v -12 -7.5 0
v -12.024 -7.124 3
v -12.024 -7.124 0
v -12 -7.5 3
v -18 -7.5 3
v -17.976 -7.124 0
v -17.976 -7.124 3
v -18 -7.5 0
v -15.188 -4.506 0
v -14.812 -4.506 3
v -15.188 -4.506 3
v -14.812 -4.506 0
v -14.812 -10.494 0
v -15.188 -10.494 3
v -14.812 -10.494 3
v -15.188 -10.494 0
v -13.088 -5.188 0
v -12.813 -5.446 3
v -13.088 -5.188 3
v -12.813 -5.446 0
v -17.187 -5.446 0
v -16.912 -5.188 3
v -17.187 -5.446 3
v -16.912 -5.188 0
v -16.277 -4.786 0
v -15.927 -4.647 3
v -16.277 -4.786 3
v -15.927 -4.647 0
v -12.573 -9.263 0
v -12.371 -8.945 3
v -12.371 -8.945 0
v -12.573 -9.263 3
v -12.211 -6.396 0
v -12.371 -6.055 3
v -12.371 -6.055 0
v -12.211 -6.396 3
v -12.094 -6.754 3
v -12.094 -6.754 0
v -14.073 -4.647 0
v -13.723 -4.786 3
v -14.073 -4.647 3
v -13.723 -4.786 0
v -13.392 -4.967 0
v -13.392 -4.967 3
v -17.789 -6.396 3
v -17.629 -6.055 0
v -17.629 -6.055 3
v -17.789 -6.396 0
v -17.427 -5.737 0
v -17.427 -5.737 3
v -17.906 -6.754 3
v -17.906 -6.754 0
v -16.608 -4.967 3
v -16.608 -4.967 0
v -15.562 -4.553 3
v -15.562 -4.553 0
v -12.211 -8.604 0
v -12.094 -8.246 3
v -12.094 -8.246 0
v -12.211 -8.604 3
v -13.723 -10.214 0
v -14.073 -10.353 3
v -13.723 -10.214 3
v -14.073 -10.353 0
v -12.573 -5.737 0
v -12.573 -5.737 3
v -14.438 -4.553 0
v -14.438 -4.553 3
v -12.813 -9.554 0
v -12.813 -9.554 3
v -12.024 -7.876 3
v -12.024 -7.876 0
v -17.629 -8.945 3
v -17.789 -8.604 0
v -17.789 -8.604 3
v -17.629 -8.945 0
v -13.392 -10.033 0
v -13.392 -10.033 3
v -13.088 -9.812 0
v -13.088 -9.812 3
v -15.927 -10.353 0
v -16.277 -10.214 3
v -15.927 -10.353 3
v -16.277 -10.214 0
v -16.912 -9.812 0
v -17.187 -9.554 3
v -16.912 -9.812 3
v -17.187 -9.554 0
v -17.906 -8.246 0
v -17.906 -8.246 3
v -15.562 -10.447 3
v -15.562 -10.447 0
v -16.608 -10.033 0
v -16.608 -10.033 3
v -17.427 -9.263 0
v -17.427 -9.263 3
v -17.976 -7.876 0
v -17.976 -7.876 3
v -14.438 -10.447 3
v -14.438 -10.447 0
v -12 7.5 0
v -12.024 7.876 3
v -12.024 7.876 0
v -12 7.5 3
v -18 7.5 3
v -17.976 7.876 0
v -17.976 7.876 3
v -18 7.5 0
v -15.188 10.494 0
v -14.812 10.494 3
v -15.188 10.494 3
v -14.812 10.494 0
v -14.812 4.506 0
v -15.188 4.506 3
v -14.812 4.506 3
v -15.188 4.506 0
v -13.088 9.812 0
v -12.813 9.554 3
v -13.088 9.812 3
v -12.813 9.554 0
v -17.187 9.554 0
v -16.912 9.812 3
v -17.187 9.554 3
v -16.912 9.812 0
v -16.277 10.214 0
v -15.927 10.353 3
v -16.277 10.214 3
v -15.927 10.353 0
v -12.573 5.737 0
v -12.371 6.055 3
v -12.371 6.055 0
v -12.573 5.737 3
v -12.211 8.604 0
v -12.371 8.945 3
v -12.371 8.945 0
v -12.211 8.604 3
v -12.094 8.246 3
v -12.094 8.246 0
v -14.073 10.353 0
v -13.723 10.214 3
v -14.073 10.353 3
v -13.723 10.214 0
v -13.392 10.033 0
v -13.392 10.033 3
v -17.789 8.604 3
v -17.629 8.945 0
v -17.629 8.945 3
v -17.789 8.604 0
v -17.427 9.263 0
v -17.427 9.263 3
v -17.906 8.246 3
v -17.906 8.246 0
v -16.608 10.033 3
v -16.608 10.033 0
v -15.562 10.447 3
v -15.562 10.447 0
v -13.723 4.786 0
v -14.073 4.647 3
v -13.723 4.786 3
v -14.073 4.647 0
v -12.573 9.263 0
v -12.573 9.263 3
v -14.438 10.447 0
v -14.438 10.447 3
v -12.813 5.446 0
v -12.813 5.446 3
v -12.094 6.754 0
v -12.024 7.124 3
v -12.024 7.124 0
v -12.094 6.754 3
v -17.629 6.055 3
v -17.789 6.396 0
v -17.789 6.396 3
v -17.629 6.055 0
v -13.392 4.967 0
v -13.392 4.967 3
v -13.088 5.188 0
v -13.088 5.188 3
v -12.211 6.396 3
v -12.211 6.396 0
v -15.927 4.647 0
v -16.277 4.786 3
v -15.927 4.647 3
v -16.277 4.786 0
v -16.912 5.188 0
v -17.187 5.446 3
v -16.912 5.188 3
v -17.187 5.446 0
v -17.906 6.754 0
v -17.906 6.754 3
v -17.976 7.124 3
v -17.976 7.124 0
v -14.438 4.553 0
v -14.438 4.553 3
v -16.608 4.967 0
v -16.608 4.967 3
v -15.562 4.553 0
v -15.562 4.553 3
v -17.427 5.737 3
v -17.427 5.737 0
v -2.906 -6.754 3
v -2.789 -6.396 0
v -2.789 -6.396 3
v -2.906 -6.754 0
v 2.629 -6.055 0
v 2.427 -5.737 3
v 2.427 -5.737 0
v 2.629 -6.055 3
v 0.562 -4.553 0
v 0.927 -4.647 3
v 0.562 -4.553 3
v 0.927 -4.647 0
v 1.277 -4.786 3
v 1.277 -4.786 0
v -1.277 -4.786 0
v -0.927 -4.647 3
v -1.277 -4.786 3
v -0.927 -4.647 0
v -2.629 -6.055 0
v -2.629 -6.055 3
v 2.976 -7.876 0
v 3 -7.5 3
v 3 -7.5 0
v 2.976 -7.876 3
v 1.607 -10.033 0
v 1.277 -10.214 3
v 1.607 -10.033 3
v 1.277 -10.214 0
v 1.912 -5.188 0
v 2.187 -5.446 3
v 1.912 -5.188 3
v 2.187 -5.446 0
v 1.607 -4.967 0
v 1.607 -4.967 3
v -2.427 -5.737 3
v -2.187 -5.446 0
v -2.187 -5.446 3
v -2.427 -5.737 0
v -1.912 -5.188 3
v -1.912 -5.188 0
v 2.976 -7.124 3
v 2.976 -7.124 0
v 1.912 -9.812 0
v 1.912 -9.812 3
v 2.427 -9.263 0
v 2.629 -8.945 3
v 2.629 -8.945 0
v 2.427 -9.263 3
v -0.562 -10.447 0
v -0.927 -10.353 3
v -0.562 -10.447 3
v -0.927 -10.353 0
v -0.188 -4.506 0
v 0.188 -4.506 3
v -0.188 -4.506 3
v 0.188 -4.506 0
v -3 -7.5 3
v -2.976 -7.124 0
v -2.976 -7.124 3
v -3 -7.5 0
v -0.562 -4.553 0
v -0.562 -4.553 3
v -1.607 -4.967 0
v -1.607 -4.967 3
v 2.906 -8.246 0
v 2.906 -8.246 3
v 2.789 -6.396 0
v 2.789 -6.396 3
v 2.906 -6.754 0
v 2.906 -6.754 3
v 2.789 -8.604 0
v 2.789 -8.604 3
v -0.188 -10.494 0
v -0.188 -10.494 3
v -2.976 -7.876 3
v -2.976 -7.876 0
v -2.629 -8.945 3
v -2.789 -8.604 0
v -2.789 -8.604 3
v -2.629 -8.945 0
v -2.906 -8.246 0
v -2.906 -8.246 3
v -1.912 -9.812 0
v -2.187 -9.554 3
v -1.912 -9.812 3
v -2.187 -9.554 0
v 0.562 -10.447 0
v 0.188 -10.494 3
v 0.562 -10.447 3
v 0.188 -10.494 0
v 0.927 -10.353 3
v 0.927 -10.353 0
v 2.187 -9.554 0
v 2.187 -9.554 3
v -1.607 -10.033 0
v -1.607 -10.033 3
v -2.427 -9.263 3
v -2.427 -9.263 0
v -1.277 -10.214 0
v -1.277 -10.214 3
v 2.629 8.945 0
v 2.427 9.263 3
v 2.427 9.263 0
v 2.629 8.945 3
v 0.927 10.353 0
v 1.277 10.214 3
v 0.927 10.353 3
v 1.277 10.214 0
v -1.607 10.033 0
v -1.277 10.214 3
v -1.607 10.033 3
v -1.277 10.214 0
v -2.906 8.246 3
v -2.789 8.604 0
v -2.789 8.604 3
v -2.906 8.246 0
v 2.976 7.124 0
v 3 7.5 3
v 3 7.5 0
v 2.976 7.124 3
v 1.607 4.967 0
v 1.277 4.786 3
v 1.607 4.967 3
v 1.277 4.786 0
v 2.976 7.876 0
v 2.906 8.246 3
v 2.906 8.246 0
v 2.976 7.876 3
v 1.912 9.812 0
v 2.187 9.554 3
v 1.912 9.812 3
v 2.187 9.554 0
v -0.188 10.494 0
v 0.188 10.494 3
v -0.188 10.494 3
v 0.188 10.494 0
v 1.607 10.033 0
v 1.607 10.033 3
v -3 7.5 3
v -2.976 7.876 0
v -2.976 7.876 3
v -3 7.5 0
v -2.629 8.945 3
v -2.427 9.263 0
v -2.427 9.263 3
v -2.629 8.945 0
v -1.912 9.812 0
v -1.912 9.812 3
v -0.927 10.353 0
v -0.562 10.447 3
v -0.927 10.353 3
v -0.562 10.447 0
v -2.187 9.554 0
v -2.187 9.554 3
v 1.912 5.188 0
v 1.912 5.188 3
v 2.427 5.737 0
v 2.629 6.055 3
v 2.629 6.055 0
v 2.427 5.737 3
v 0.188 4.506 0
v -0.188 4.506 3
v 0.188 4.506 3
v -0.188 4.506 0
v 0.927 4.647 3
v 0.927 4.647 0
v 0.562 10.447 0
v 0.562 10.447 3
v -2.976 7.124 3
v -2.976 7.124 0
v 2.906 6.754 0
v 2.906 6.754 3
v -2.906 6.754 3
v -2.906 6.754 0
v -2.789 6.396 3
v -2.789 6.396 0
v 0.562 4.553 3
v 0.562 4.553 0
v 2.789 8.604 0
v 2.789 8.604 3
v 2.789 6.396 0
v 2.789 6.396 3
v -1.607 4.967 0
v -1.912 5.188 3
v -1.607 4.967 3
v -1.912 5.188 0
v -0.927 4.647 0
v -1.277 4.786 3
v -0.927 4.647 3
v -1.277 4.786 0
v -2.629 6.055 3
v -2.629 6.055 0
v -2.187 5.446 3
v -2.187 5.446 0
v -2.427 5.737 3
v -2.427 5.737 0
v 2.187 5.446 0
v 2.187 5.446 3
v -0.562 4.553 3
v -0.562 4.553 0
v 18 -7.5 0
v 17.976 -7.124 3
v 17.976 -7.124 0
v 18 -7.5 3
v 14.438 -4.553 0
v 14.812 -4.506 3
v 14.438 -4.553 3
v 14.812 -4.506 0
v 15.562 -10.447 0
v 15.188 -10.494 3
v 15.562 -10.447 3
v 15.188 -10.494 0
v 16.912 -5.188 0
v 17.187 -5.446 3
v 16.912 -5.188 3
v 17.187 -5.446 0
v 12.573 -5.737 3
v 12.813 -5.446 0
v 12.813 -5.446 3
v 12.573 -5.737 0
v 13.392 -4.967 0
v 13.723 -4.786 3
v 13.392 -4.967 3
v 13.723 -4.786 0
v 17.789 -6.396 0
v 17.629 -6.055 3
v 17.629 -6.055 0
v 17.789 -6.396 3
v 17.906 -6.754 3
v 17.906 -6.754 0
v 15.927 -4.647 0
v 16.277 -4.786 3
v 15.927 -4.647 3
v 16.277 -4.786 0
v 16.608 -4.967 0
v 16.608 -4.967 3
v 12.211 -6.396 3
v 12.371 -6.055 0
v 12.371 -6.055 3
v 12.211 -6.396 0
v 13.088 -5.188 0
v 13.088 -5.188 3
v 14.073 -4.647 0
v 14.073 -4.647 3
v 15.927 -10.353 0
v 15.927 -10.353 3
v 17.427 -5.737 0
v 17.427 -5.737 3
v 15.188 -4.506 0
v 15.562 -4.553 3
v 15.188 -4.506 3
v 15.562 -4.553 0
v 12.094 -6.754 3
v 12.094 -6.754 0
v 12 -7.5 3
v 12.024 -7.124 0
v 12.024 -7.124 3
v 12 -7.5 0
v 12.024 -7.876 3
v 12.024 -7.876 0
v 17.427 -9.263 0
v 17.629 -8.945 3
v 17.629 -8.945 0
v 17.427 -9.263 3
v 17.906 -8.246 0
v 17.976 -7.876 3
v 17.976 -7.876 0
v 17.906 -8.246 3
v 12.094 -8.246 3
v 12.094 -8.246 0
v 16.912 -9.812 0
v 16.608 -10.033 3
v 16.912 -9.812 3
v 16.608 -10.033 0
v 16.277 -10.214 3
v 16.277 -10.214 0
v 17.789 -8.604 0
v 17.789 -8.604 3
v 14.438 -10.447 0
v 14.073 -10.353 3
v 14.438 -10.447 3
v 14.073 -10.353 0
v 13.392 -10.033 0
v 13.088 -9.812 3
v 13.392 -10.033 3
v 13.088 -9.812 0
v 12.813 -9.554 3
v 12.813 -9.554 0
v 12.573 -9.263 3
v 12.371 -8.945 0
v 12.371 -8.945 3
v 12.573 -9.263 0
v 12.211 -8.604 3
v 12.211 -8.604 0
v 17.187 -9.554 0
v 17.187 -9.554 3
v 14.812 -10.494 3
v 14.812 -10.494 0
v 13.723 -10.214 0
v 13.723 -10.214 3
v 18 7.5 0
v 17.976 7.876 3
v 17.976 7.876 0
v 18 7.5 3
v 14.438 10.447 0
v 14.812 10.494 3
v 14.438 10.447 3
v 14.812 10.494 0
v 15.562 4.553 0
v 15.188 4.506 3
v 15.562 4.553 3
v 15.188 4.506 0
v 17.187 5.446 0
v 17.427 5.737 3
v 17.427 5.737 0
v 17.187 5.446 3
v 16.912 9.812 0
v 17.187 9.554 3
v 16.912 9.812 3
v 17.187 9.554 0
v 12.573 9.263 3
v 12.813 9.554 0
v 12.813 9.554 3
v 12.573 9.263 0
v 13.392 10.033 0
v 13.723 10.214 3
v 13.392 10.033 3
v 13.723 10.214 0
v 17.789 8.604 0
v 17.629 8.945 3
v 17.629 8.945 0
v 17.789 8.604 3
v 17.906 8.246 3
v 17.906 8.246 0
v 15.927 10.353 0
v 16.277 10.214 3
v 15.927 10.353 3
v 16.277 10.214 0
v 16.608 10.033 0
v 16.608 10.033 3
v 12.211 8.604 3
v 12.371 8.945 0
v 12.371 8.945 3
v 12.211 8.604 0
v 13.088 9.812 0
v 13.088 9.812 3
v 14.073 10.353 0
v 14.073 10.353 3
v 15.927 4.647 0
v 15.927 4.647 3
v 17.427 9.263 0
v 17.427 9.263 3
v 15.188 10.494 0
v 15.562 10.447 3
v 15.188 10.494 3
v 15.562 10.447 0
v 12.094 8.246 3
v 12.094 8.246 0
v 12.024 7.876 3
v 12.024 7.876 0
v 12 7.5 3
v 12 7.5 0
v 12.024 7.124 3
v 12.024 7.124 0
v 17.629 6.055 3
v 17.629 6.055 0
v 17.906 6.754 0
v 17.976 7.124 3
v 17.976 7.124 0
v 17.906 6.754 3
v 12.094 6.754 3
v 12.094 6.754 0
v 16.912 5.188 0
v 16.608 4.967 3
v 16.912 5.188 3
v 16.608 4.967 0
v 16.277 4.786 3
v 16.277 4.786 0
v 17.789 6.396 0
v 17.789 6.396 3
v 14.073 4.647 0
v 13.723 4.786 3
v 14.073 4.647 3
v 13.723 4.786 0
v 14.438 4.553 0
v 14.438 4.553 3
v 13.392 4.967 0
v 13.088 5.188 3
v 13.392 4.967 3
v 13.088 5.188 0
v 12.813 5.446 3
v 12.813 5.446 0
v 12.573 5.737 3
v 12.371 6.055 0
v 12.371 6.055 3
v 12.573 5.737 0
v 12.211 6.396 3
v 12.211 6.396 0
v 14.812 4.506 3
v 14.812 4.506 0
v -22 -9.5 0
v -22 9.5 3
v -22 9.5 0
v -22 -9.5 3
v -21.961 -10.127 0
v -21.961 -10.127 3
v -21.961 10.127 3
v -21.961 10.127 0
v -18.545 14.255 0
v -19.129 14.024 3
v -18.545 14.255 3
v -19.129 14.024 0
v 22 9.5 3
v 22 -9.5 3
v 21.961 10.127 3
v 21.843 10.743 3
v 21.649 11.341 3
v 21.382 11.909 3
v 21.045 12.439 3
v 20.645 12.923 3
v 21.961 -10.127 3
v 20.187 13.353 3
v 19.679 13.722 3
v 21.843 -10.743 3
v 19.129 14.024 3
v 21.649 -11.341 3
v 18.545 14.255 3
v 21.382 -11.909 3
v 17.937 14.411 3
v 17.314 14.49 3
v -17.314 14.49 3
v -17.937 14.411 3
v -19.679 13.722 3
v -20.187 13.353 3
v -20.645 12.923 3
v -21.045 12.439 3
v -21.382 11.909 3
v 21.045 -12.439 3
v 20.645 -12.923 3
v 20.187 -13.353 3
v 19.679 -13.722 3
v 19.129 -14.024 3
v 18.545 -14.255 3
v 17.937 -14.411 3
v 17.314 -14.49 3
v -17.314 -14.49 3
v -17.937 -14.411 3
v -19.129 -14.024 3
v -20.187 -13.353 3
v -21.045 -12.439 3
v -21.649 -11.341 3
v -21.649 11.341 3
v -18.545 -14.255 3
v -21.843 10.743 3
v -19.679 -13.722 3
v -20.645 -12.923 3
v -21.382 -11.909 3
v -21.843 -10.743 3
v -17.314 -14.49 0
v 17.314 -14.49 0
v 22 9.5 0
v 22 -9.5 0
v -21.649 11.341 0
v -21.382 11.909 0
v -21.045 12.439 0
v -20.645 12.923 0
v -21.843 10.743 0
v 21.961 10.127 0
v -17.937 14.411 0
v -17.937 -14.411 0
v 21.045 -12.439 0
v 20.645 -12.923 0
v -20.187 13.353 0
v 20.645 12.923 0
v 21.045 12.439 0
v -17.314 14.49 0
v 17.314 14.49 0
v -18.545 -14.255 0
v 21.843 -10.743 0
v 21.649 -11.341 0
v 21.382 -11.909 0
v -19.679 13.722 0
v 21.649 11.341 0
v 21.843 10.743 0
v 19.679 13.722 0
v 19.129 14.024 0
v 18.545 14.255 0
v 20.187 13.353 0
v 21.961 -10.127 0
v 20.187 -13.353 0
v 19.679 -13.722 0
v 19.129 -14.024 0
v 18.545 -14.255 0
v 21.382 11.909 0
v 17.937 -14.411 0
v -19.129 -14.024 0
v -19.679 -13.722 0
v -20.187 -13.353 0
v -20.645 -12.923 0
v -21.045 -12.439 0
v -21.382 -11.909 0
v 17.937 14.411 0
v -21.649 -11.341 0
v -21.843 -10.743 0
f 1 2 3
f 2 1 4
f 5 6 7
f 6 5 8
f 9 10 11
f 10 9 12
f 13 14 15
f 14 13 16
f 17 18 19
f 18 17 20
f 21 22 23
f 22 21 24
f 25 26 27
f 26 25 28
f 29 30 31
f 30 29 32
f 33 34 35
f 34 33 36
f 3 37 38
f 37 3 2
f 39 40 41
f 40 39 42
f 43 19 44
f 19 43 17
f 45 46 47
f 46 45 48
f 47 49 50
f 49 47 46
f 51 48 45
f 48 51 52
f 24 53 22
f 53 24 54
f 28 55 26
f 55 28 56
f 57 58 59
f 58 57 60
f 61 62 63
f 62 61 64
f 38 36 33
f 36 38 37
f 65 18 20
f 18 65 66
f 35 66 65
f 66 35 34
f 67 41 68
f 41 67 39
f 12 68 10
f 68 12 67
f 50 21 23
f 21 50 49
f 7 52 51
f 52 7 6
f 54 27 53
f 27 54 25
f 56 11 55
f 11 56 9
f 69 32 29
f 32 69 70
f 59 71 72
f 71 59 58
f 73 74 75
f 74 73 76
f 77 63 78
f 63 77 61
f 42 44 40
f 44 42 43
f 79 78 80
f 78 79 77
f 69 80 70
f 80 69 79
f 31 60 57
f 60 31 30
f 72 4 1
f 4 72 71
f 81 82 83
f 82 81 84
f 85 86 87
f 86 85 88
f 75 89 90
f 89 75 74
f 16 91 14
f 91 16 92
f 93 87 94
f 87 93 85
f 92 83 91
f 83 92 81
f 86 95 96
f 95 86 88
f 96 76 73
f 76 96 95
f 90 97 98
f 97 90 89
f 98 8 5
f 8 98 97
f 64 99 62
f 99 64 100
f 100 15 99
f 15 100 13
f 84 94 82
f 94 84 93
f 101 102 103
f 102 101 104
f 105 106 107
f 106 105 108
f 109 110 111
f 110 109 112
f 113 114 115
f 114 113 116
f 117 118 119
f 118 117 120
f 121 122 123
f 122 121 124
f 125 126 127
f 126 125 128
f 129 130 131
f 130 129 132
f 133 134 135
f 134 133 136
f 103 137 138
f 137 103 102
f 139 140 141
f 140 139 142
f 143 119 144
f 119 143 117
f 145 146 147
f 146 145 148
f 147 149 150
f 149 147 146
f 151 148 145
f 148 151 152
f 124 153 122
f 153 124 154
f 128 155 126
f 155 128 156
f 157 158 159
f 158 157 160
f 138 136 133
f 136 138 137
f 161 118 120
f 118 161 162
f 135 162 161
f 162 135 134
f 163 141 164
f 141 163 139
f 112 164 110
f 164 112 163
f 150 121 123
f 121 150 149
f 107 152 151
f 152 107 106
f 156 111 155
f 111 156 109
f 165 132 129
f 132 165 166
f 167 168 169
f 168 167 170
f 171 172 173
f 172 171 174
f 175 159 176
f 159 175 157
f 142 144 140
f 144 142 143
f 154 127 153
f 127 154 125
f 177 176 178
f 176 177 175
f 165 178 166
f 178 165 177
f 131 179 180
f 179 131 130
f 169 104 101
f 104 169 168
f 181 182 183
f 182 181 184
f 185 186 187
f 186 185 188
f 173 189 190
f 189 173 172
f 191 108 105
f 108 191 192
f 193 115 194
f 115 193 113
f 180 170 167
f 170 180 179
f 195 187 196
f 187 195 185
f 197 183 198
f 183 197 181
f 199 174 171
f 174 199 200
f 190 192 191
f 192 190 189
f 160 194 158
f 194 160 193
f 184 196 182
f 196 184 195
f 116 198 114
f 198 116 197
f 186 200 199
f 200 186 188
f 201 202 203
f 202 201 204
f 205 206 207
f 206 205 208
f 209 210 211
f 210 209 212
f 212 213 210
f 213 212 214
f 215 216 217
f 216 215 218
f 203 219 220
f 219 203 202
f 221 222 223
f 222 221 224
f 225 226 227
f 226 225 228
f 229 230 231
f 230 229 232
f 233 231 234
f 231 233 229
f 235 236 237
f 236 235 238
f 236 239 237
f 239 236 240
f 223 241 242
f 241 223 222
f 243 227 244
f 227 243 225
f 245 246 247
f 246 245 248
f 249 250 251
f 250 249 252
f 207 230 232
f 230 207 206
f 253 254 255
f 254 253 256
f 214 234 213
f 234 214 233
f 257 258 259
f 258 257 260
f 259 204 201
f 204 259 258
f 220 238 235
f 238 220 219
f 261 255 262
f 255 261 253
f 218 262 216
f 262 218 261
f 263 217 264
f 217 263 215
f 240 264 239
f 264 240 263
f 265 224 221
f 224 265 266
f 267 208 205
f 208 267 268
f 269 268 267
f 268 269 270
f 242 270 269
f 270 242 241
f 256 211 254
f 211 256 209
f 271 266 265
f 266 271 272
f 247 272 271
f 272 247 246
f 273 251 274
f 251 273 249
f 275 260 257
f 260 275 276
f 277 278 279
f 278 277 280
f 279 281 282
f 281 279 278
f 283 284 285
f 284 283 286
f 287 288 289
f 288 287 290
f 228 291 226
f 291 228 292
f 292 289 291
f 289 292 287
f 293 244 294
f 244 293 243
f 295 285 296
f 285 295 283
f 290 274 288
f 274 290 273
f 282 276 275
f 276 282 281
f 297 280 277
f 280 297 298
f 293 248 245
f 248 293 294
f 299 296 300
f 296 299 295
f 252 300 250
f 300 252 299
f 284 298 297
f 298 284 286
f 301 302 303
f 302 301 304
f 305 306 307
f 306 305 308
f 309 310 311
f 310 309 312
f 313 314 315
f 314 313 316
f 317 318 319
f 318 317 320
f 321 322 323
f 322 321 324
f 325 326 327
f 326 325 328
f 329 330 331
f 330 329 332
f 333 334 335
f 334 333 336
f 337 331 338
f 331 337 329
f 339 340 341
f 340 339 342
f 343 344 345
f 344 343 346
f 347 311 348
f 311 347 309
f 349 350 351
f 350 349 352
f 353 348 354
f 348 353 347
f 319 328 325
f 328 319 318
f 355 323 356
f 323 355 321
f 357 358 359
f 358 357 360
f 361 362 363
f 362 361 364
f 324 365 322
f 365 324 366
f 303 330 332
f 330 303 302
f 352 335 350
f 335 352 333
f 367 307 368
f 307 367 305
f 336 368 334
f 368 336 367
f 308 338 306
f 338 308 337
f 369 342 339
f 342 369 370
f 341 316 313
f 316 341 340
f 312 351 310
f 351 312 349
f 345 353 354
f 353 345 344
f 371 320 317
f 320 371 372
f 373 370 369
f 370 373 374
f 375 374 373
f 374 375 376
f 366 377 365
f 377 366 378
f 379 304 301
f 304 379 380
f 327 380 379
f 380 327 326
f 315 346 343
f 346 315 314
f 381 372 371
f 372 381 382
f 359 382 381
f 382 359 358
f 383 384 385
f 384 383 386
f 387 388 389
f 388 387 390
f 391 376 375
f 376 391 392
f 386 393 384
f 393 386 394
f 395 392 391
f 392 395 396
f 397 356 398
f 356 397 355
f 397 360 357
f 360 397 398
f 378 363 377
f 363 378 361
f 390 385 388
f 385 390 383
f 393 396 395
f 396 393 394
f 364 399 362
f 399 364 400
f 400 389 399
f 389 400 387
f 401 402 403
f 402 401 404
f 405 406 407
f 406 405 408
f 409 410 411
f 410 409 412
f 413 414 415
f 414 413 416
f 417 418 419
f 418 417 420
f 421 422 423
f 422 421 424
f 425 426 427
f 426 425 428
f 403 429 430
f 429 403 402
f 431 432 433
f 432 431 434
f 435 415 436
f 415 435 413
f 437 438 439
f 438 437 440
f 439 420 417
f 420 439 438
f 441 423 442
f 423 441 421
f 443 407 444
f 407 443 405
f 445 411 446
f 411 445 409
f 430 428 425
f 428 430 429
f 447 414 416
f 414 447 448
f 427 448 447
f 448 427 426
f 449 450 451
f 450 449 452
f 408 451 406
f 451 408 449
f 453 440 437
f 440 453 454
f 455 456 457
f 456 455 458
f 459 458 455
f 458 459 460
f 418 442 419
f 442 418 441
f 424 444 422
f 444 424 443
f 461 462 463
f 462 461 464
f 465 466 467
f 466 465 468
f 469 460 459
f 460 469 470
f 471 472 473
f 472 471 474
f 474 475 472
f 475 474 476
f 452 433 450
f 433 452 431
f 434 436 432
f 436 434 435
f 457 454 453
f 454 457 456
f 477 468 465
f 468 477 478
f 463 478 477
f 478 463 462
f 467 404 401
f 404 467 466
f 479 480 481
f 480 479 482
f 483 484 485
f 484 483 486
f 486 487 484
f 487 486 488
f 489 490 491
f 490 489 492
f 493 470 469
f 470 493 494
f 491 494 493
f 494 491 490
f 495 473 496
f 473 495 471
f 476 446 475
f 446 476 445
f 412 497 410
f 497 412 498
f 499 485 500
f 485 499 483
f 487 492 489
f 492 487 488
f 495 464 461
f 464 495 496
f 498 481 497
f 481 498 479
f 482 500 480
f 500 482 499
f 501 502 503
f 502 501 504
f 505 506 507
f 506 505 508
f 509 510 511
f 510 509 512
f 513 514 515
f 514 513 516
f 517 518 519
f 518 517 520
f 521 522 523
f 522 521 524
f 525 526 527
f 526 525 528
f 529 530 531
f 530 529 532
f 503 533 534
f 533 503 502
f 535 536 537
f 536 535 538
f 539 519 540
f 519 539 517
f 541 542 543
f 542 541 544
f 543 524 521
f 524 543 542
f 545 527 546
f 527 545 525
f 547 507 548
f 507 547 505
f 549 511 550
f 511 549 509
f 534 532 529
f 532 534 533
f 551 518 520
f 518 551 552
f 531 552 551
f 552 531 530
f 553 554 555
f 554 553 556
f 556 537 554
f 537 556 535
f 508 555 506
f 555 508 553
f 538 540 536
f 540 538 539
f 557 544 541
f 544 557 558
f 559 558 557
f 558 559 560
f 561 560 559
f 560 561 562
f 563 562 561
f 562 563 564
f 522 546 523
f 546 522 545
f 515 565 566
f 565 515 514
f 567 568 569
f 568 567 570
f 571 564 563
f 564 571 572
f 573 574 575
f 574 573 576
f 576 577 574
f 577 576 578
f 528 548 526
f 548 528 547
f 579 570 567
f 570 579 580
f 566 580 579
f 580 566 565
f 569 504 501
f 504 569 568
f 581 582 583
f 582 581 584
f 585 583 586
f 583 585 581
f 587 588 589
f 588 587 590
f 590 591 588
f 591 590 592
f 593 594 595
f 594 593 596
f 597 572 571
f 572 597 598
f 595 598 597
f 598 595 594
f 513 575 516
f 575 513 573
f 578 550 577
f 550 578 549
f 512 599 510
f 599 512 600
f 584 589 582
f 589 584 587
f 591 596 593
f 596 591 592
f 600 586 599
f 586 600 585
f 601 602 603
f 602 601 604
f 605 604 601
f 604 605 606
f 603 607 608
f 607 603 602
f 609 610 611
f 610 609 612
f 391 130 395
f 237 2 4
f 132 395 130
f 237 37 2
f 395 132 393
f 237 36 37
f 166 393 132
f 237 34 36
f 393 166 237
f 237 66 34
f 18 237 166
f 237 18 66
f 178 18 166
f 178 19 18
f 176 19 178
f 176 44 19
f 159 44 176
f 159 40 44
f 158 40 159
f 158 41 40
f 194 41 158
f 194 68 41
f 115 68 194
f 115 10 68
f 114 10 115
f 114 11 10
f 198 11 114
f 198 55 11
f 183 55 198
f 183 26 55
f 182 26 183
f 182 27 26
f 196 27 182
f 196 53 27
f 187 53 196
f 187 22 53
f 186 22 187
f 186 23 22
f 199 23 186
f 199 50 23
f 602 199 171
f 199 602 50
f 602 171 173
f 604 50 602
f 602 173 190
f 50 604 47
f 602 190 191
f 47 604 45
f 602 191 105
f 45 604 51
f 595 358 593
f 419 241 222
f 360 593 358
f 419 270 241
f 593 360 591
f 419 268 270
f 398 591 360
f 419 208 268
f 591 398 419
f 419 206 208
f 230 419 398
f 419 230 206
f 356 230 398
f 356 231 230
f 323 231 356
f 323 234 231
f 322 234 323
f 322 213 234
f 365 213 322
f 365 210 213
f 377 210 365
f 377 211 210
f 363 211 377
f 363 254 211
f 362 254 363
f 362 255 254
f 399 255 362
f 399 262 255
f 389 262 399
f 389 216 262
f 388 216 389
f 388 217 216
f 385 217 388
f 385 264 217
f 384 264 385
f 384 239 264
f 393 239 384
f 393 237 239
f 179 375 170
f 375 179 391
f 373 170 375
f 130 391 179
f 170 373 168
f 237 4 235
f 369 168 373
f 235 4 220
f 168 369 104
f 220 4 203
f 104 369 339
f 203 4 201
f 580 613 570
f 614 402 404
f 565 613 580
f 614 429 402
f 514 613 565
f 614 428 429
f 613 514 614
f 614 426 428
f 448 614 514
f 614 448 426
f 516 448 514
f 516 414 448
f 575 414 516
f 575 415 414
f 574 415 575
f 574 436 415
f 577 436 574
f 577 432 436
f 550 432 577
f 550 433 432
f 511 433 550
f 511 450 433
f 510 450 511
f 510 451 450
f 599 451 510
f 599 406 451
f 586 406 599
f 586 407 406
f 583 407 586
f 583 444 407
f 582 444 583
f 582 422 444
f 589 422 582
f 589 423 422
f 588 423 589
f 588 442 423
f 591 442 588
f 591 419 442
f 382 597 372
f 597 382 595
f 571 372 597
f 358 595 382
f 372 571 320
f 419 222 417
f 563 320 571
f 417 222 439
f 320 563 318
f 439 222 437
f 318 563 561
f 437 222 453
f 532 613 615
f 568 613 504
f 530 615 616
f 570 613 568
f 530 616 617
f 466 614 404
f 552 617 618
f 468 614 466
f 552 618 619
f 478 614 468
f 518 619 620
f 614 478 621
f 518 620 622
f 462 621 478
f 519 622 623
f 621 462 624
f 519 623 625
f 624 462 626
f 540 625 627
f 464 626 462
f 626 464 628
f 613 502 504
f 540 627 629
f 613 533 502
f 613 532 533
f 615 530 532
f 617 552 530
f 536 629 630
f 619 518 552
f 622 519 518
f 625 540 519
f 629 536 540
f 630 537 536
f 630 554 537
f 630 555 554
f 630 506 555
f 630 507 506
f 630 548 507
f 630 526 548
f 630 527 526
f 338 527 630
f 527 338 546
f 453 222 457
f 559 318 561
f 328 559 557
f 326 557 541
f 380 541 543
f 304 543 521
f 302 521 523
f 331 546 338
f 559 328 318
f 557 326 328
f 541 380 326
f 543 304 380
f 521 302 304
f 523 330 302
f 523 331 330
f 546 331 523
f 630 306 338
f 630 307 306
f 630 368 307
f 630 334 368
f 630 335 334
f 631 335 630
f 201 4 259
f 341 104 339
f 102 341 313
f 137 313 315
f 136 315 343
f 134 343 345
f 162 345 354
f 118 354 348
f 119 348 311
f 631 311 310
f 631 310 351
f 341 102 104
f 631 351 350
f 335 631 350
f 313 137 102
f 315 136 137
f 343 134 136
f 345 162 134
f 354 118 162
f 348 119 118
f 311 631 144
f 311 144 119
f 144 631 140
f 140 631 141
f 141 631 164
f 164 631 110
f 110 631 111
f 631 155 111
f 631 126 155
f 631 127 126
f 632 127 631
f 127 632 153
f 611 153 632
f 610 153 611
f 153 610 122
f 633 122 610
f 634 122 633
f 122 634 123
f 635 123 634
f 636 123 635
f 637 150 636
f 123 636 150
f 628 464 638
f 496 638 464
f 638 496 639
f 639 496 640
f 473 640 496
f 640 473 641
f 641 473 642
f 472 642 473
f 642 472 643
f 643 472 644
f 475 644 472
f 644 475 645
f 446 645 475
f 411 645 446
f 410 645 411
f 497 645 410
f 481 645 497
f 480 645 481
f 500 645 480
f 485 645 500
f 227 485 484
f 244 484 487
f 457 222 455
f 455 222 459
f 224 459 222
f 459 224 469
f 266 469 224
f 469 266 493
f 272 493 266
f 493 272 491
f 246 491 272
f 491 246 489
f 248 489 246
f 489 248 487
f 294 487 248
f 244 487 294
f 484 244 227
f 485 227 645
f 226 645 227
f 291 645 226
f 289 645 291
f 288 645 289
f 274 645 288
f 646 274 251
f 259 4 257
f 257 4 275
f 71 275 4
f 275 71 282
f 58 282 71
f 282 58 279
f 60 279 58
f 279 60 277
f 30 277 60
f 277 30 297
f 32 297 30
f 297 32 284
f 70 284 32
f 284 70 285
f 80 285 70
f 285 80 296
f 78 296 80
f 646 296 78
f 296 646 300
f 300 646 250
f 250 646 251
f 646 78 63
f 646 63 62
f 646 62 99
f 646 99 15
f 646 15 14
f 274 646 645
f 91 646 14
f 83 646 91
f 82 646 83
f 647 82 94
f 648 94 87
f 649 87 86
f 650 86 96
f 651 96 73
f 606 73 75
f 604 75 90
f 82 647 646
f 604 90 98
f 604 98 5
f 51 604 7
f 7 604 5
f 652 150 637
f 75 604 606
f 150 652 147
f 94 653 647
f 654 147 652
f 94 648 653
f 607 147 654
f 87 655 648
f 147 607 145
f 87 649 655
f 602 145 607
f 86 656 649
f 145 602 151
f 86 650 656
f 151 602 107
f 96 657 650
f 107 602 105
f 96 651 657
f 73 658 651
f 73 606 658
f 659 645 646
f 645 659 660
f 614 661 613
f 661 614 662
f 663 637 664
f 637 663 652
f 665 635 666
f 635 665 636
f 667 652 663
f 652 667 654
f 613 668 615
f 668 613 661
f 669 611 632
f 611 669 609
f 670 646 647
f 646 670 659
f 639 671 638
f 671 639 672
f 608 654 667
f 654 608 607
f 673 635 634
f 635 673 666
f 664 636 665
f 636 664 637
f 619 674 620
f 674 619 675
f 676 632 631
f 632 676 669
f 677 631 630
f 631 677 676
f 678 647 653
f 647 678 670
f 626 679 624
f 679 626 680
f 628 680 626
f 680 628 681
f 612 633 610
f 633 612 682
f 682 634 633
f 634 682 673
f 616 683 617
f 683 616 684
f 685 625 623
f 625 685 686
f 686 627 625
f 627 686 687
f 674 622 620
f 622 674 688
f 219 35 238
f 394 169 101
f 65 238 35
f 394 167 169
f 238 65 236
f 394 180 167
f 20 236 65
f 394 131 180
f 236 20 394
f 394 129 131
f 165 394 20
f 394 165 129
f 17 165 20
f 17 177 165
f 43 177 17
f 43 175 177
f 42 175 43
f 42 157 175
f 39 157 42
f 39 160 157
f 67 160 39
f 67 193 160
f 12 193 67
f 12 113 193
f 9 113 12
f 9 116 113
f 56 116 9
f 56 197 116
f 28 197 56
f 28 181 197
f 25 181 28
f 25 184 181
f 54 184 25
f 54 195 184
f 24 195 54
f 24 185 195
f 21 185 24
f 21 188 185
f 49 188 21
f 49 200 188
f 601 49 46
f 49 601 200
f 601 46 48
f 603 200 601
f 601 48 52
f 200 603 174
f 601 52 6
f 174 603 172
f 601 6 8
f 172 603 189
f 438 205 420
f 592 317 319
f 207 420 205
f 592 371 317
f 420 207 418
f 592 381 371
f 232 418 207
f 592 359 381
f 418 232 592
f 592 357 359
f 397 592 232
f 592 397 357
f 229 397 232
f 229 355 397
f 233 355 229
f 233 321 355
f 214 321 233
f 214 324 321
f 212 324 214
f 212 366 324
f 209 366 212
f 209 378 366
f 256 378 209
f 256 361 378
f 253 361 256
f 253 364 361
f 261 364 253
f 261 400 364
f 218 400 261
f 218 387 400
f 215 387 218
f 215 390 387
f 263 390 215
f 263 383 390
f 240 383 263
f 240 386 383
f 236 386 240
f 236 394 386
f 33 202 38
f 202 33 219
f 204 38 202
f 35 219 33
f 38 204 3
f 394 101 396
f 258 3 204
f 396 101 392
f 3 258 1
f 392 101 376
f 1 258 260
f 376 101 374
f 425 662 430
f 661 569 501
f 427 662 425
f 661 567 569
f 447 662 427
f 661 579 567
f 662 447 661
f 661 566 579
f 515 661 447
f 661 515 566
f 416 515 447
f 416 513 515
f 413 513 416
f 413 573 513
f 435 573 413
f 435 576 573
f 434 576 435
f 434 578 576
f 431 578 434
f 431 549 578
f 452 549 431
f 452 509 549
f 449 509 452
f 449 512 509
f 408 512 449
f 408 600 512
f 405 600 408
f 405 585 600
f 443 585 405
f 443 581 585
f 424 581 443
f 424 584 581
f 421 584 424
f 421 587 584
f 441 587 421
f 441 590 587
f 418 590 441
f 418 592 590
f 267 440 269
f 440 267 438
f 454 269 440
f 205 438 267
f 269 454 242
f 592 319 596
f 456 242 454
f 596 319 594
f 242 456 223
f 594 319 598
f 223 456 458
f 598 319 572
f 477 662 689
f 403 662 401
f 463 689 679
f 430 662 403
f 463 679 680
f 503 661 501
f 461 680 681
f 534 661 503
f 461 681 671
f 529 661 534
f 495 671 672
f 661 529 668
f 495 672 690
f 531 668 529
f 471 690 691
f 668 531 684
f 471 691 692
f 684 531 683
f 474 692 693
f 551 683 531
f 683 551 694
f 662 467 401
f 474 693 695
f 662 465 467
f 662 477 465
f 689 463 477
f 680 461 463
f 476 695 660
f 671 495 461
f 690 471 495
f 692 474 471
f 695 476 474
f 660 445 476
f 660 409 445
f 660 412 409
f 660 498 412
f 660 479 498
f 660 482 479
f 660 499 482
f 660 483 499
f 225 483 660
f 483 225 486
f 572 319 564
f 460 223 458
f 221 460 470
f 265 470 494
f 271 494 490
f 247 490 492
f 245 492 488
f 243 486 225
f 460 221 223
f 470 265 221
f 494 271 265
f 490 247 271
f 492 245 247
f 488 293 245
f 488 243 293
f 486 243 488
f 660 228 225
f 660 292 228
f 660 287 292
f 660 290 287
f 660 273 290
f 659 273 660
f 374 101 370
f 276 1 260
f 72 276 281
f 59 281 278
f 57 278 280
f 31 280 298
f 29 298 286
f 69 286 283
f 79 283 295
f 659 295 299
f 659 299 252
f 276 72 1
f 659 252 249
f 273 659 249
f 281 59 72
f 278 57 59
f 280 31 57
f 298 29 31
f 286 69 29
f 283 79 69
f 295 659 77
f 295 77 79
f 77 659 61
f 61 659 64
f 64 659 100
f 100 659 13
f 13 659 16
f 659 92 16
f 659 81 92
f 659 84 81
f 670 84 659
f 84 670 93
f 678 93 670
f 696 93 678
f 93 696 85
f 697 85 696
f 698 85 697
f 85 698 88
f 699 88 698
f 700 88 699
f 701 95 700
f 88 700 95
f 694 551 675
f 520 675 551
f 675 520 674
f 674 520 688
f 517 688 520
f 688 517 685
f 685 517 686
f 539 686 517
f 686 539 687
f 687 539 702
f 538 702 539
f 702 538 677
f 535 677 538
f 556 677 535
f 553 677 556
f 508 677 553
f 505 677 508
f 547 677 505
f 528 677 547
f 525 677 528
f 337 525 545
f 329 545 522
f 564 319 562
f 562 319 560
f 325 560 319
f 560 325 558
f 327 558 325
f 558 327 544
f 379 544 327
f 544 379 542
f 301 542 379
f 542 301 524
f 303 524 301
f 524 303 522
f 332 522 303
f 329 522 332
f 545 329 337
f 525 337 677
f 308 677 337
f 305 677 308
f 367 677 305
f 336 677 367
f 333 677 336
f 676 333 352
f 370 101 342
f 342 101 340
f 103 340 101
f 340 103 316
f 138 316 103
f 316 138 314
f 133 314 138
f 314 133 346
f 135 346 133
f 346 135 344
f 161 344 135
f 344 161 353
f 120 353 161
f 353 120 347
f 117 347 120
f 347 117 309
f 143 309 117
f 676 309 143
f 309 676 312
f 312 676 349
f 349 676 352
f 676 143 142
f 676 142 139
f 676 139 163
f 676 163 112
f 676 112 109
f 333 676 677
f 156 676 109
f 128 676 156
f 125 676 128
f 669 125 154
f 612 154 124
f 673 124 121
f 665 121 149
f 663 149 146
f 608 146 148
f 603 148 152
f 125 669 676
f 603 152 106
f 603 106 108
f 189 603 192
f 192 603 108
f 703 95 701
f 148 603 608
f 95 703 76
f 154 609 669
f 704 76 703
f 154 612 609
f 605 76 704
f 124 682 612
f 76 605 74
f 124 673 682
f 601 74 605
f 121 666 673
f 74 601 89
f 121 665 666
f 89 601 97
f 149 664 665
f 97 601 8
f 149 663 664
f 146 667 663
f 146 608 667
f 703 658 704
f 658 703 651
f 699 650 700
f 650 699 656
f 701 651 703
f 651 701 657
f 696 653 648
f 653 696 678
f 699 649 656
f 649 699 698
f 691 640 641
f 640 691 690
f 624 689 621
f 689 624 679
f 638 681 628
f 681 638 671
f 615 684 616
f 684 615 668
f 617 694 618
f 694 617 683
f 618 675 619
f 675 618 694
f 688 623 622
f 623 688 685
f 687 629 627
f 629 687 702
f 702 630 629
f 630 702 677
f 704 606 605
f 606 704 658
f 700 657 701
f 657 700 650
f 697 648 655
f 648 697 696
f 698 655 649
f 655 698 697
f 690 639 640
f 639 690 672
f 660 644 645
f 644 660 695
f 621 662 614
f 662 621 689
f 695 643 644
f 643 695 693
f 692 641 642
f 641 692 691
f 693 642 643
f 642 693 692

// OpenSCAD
// Generated by SolidPython 1.1.3 on 2023-03-12 21:51:50
$fn = 50;


difference() {
	union() {
		translate(v = [0, 0, 0]) {
			rotate(a = [0, 0, 0]) {
				hull() {
					translate(v = [-17.0000000000, 9.5000000000, 0]) {
						rotate(a = [0, 0, 0]) {
							translate(v = [0, 0, 0]) {
								rotate(a = [0, 0, 0]) {
									cylinder(h = 3, r = 5);
								}
							}
						}
					}
					translate(v = [17.0000000000, 9.5000000000, 0]) {
						rotate(a = [0, 0, 0]) {
							translate(v = [0, 0, 0]) {
								rotate(a = [0, 0, 0]) {
									cylinder(h = 3, r = 5);
								}
							}
						}
					}
					translate(v = [-17.0000000000, -9.5000000000, 0]) {
						rotate(a = [0, 0, 0]) {
							translate(v = [0, 0, 0]) {
								rotate(a = [0, 0, 0]) {
									cylinder(h = 3, r = 5);
								}
							}
						}
					}
					translate(v = [17.0000000000, -9.5000000000, 0]) {
						rotate(a = [0, 0, 0]) {
							translate(v = [0, 0, 0]) {
								rotate(a = [0, 0, 0]) {
									cylinder(h = 3, r = 5);
								}
							}
						}
					}
				}
			}
		}
	}
	union() {
		translate(v = [-15.0000000000, -7.5000000000, 0]) {
			rotate(a = [0, 0, 0]) {
				translate(v = [0, 0, -50]) {
					rotate(a = [0, 0, 0]) {
						cylinder(h = 100, r = 3.0000000000);
					}
				}
			}
		}
		translate(v = [-15.0000000000, 7.5000000000, 0]) {
			rotate(a = [0, 0, 0]) {
				translate(v = [0, 0, -50]) {
					rotate(a = [0, 0, 0]) {
						cylinder(h = 100, r = 3.0000000000);
					}
				}
			}
		}
		translate(v = [0.0000000000, -7.5000000000, 0]) {
			rotate(a = [0, 0, 0]) {
				translate(v = [0, 0, -50]) {
					rotate(a = [0, 0, 0]) {
						cylinder(h = 100, r = 3.0000000000);
					}
				}
			}
		}
		translate(v = [0.0000000000, 7.5000000000, 0]) {
			rotate(a = [0, 0, 0]) {
				translate(v = [0, 0, -50]) {
					rotate(a = [0, 0, 0]) {
						cylinder(h = 100, r = 3.0000000000);
					}
				}
			}
		}
		translate(v = [15.0000000000, -7.5000000000, 0]) {
			rotate(a = [0, 0, 0]) {
				translate(v = [0, 0, -50]) {
					rotate(a = [0, 0, 0]) {
						cylinder(h = 100, r = 3.0000000000);
					}
				}
			}
		}
		translate(v = [15.0000000000, 7.5000000000, 0]) {
			rotate(a = [0, 0, 0]) {
				translate(v = [0, 0, -50]) {
					rotate(a = [0, 0, 0]) {
						cylinder(h = 100, r = 3.0000000000);
					}
				}
			}
		}
	}
}
/***********************************************
*********      SolidPython code:      **********
************************************************
 
from solid import *
import os
import subprocess

import oomB

import opsc_library_gen

mode = "laser"
#mode = "3d_print"

defined_objects = {}

radius_dict = {}
countersunk_dict = {}


def set_mode(m):
    global mode
    mode = m
    radius_dict['M6'] = 6.5/2
    radius_dict['M3'] = 3.3/2
    if mode == "laser":
        radius_dict['M6'] = 6/2
        radius_dict['M3'] = 3/2

    countersunk_dict['M3'] = {}
    countersunk_dict['M3']['little_rad'] = radius_dict['M3']
    countersunk_dict['M3']['big_rad'] = (5.5+0.6)/2
    if mode == "laser":
        countersunk_dict['M3']['big_rad'] = (4.75+0.6)/2
        countersunk_dict['M3']['little_rad'] = (4.75+0.6)/2

    countersunk_dict['M3']['height'] = 1.7


def opsc_make_object(filename, objects, save_type="none",resolution=50, layers = 1, tilediff = 200, mode="laser", overwrite=True):
    if overwrite or not os.path.exists(filename):
        set_mode(mode)
        save_type = save_type.lower()
        os.makedirs(os.path.dirname(filename), exist_ok=True)
        final_object = opsc_get_object(objects, mode = mode)
        # Save the final object to the specified filename    
        scad_render_to_file(final_object, filename, file_header='$fn = %s;' % resolution, include_orig_code=True)
        if mode == "laser":
            filename_laser = filename.replace(".scad","-flat.scad")
            scad_render_to_file(getLaser(final_object, layers=layers, tilediff=tilediff), filename_laser, file_header='$fn = %s;' % resolution, include_orig_code=True)
            if save_type == "all":
                saveToAll(filename_laser)
            elif save_type == "dxf":
                saveToDxf(filename_laser)
        if save_type == "all":
            saveToAll(filename)
        elif save_type == "dxf":
            saveToDxf(filename)


def opsc_get_object(objects, mode = "laser"):
    # Create the solidpython objects only include the positive objects and if they don't have inclusion or their inclusion is either all or mode
    # Initialize an empty list to store the results
    positive_objects = []

    # Iterate over the "objects" list
    for obj in objects:
        # Check if the current object has a "type" key with a value of "positive"
        if obj['type'] == 'positive':
            # Check if the current object has an "inclusion" key and its value matches "mode",
            # or if the current object does not have an "inclusion" key at all
            if not 'inclusion' in obj or obj['inclusion'] == "all" or obj['inclusion'] == mode:
                # Call the "get_opsc_item" function with the current object as an argument
                opsc_item = get_opsc_item(obj)
                # Add the result to the "positive_objects" list
                positive_objects.append(opsc_item)
# Initialize an empty list to store the results
    negative_objects = []

    # Iterate over the "objects" list
    for obj in objects:
        # Check if the current object has a "type" key with a value of "negative"
        if obj['type'] == 'negative':
            # Check if the current object has an "inclusion" key and its value matches "mode",
            # or if the current object does not have an "inclusion" key at all
            if not 'inclusion' in obj or obj['inclusion'] == "all" or obj['inclusion'] == mode:
                # Call the "get_opsc_item" function with the current object as an argument
                opsc_item = get_opsc_item(obj)
                # Add the result to the "negative_objects" list
                negative_objects.append(opsc_item)
    
    #positive_objects = [get_opsc_item(obj) for obj in objects if obj['type'] == 'positive']
    #negative_objects = [get_opsc_item(obj) for obj in objects if obj['type'] == 'negative']
    # Union the positive objects
    positive_object = union()(*positive_objects)
    # Union the negative objects
    negative_object = union()(*negative_objects)
    # Create the final object by subtracting the negative objects from the positive objects
    return difference()(positive_object, negative_object)

def get_opsc_item(params):
    # A dictionary to map radius string values to numerical values
    #radius_dict = {'small': 5, 'medium': 10, 'large': 15}
    # An array of function names for basic shapes
    basic_shapes = ['cube', 'sphere', 'cylinder']
    
    # An array of function names for other shapes
    other_shapes = ['hole', 'slot', 'rounded_rectangle', 'countersunk']
    


    # Convert radius to r if present, and remove radius from the params dictionary
    if 'radius' in params:
        if isinstance(params['radius'], str):
            # Use the radius_dict to map the radius string value to a numerical value
            params['r'] = radius_dict[params['radius']]
        else:
            params['r'] = params['radius']
        del params['radius']
    

    # Check if the object type is a basic shape
    if params['shape'] in basic_shapes:
        # Remove shape and unexpected dictionary values
        allowed_keys = {'size', 'r', 'r1', 'r2', 'd', 'h', 'rw', 'rh', 'dw', 'dh'}
        shape_params = {k: v for k, v in params.items() if k in allowed_keys}

        # Call the corresponding function for the shape parameter, using ** notation to pass the shape_params dictionary as keyword arguments
        return get_opsc_transform(params,globals()[params['shape']](**shape_params))
    
    # If the object type is not a basic shape, check if it's a defined object or one of the other shapes
    elif params['shape'] in other_shapes:
        # Call the corresponding function for the shape parameter, passing the params dictionary as an argument
        p2 = copy.deepcopy(params)
        p2["pos"] = [0,0,0]
        return get_opsc_transform(params,globals()[params['shape']](p2))
    
    # If the object is not a basic shape or a defined object, try to import it from a .scad file
    else:
        obj = defined_objects[params['shape']]
        return get_opsc_transform(params,obj)

def get_opsc_transform(params, solid_obj):
    # Rotate the object based on the 'rot' field in the params dictionary, or the 'rotX', 'rotY', and 'rotZ' fields if 'rot' is not present
    rot = params.get('rot', [])
    if rot:
        rotX, rotY, rotZ = rot
    else:
        rotX = params.get('rotX', 0)
        rotY = params.get('rotY', 0)
        rotZ = params.get('rotZ', 0)
    solid_obj = rotate([rotX, rotY, rotZ])(solid_obj)

    # Translate the object based on the 'pos' field in the params dictionary, or the 'x', 'y', and 'z' fields if 'pos' is not present
    pos = params.get('pos', [])
    if pos:
        x, y, z = pos
    else:
        x = params.get('x', 0)
        y = params.get('y', 0)
        z = params.get('z', 0)
    solid_obj = translate([x, y, z])(solid_obj)
    return solid_obj


import random

def opsc_easy_array(type, shape, repeats, pos_start, shift_arr, **kwargs):
    for i in range(0,3):
        repeats.append(1)
        pos_start.append(0)
        shift_arr.append(0)
    return_objects = []

    for x in range(0,repeats[0]):
        for y in range(0,repeats[1]):
            for z in range(0,repeats[2]):
                return_objects.append(opsc_easy(type, shape, pos=[pos_start[0]+x*shift_arr[0],pos_start[1]+y*shift_arr[1],pos_start[2]+z*shift_arr[2]], **kwargs))
    return return_objects                



def opsc_easy(type, shape, **kwargs):
    obj = {
        'type': type,
        'shape': shape
    }
    for param in ['size', 'r', 'r1', 'r2', 'd', 'h', 'rw', 'rh', 'dw', 'dh', 'pos', 'x', 'y', 'z', 'rot', 'rotX', 'rotY', 'rotZ', "w", "inclusion"]:
        if param in kwargs:
            obj[param] = kwargs[param]
    return obj

def hole(params):
    p2 = copy.deepcopy(params)  
    # Check if the radius is a string and replace it with the corresponding value from the dictionary
    if isinstance(p2['r'], str):
        p2['r'] = radius_dict[p2['r']]
    
    # Set the height to 100 if not specified
    if 'h' not in p2:
        p2['h'] = 100
        p2["pos"] = [0,0,-50]
    p2["center"] = True
    # Create the cylinder object
    p2["shape"] = "cylinder"
    p2["type"] = "positive"

    return get_opsc_item(p2)

import copy

def countersunk(params):
    p2 = copy.deepcopy(params)
    counter_rad = p2['r']
    p2['r'] = radius_dict[p2['r']]
    hp = copy.deepcopy(p2)
    hp["type"] = "positive"
    hp["shape"] = "hole"
    del hp["rot"]
    hol = get_opsc_item(hp)
    
    cp = copy.deepcopy(p2)
    cp["h"] = countersunk_dict[counter_rad]["height"]
    cp["r2"] = countersunk_dict[counter_rad]["little_rad"]
    cp["r1"] = countersunk_dict[counter_rad]["big_rad"]
    del cp["r"]
    del cp["rot"]
    cp["type"] = "positive"
    cp["shape"] = "cylinder"
    cp["pos"] = [0,0,0]

    top = get_opsc_item(cp)
    return union()(hol,top)



def slot(params):  
    p2 = copy.deepcopy(params) 
    if isinstance(p2['r'], str):
        p2['r'] = radius_dict[p2['r']]
    p2["type"] = "positive"
    p2["shape"] = "hole"
    del p2["rot"]
    p2["pos"] = [0,0,0]
    left = copy.deepcopy(p2)
    right = copy.deepcopy(p2)
    left["pos"][0] = p2["w"] / 2 - p2["r"] 
    
    right["pos"][0] = -p2["w"] / 2 + p2["r"] 
    pass
    leftObj = get_opsc_item(left)
    rightObj = get_opsc_item(right)
    return hull()(leftObj, rightObj)

def rounded_rectangle(params):   
    p2 = copy.deepcopy(params) 
    p2["h"] = p2["size"][2]
    p2["pos"] = p2.get("pos", [0, 0, 0]) 
    p2["type"] = "positive"
    p2["shape"] = "hole"
    p2["pos"] = [0,0,0]
    
    if 'rot' in p2:
        del p2["rot"]   
    if 'r' not in p2:
        p2["r"] = 5 
    tl = copy.deepcopy(p2)
    tr = copy.deepcopy(p2)
    bl = copy.deepcopy(p2)
    br = copy.deepcopy(p2)
    tl["pos"][0] = -(p2["size"][0] - p2["r"]*2)/2
    tl["pos"][1] = (p2["size"][1] - p2["r"]*2)/2
    tr["pos"][0] = (p2["size"][0] - p2["r"]*2)/2
    tr["pos"][1] = (p2["size"][1] - p2["r"]*2)/2
    bl["pos"][0] = -(p2["size"][0] - p2["r"]*2)/2
    bl["pos"][1] = -(p2["size"][1] - p2["r"]*2)/2
    br["pos"][0] = (p2["size"][0] - p2["r"]*2)/2
    br["pos"][1] = -(p2["size"][1] - p2["r"]*2)/2
    del tl["size"]
    del tr["size"]
    del bl["size"]
    del br["size"]
    tlo = get_opsc_item(tl)
    tro = get_opsc_item(tr)
    blo = get_opsc_item(bl)
    bro = get_opsc_item(br)    
    return hull()(tlo, tro, blo, bro)



def import_scad_object(filename):
    # Import the .scad file and convert it to a solidpython object
    #filename = "parts"
    obj = import_scad(filename)
    return obj.main()
    


import os
import solid as solidpython

# A dictionary to store the defined objects


def load_scad_objects():
    opsc_library_gen.gen_library(defined_objects)

import random

def test(num_objects):
    objects = []
    for i in range(num_objects):
        # Choose a random shape
        #shape = random.choice(['cube', 'sphere', 'cylinder', 'hole', 'slot', "rounded_rectangle"])
        shape = random.choice(["rounded_rectangle"])

        # Choose a random type
        type = random.choice(['positive', 'negative'])
        
        # Create an empty object dictionary
        obj = {'shape': shape, 'type': type}
        
        # Set shape-specific parameters
        if obj['shape'] in ['cube']:
            obj['size'] =  [random.uniform(5, 15), random.uniform(5, 15), random.uniform(5, 15)]
        if obj['shape'] in ['rounded_rectangle']:
            obj['size'] =  [random.uniform(5, 15), random.uniform(5, 15), random.uniform(5, 15)]
            obj['r'] = random.uniform(0.5, 5)
        elif obj['shape'] == 'sphere':
            obj['r'] = random.uniform(5, 15)
        elif obj['shape'] in ['cylinder', 'hole']:
            obj['r'] = random.uniform(0.5, 5)
            obj['h'] = random.uniform(5, 15)
        elif obj['shape'] == 'slot':
            obj['r'] = random.uniform(0.5, 5)
            obj['h'] = random.uniform(5, 15)
            obj['w'] = random.uniform(5, 15)
        
        # Set a random position and rotation
        obj['pos'] = [random.uniform(-20, 20), random.uniform(-20, 20), random.uniform(-20, 20)]
        obj['rot'] = [random.uniform(-180, 180), random.uniform(-180, 180), random.uniform(-180, 180)]
        
        # Add the object to the list
        objects.append(obj)
    return objects

####### old file saving
def saveToAll(fileIn):
    saveToDxf(fileIn)
    saveToPng(fileIn)
    saveToStl(fileIn)
    saveToSvg(fileIn)

def saveToDxf(fileIn, fileOut="", copy_to_laser=True):
    if fileOut == "":
        fileOut = fileIn.replace(".scad",".dxf")
    saveToFile(fileIn, fileOut)


    
def saveToPng(fileIn, fileOut="",extra="--render"):
    if fileOut == "":
        fileOut = fileIn.replace(".scad",".png")
    saveToFile(fileIn, fileOut)

def saveToStl(fileIn, fileOut=""):
    if fileOut == "":
        fileOut = fileIn.replace(".scad",".stl")
    saveToFile(fileIn, fileOut)
    
def saveToSvg(fileIn, fileOut=""):
    if fileOut == "":
        fileOut = fileIn.replace(".scad",".svg")
    saveToFile(fileIn, fileOut)

def saveToFile(fileIn, fileOut,extra=""):
    #extra = extra + " --colorscheme Tomorrow"

    launchStr = 'openscad -o "' + fileOut + '"' + extra + ' "' + fileIn + '"'
    if ".png" in fileOut:
        launchStr = launchStr + " --render"
    print("            saveToFile launch string: " + launchStr)
    subprocess.run(launchStr)
    x=0

def getLaser(final_object,start=1.5,layers=1,thickness=3,tilediff=200):
        rv= []

        for x in range(layers):
            rv.append(translate([0,x*tilediff,0])(
                    projection()(
                        intersection()(translate([-500,-500,start+x*thickness])(cube(size=[1000,1000,0.1])),
                            final_object
                        )
                    )
            )
            )
            
        return union()(rv)

set_mode("laser")
load_scad_objects() 
 
************************************************/
